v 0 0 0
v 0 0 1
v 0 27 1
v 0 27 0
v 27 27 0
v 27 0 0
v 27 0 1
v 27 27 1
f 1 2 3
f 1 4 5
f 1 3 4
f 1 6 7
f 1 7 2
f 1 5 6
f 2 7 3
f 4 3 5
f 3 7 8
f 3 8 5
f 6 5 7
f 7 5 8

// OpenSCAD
/* Warning, this is a very basic generator with a lot of approximation 
input data : [HFCBGA, 4BC, 27x27mm, 672, , A, C04-25039A]
generated by com.zoubworld.electronics.cad.model3d.Basic
Date : Sun Feb 15 10:50:49 CET 2026
*/

//body
color("black")
translate([0,0,0])
cube([27.0,27.0,1.0], center=false);
